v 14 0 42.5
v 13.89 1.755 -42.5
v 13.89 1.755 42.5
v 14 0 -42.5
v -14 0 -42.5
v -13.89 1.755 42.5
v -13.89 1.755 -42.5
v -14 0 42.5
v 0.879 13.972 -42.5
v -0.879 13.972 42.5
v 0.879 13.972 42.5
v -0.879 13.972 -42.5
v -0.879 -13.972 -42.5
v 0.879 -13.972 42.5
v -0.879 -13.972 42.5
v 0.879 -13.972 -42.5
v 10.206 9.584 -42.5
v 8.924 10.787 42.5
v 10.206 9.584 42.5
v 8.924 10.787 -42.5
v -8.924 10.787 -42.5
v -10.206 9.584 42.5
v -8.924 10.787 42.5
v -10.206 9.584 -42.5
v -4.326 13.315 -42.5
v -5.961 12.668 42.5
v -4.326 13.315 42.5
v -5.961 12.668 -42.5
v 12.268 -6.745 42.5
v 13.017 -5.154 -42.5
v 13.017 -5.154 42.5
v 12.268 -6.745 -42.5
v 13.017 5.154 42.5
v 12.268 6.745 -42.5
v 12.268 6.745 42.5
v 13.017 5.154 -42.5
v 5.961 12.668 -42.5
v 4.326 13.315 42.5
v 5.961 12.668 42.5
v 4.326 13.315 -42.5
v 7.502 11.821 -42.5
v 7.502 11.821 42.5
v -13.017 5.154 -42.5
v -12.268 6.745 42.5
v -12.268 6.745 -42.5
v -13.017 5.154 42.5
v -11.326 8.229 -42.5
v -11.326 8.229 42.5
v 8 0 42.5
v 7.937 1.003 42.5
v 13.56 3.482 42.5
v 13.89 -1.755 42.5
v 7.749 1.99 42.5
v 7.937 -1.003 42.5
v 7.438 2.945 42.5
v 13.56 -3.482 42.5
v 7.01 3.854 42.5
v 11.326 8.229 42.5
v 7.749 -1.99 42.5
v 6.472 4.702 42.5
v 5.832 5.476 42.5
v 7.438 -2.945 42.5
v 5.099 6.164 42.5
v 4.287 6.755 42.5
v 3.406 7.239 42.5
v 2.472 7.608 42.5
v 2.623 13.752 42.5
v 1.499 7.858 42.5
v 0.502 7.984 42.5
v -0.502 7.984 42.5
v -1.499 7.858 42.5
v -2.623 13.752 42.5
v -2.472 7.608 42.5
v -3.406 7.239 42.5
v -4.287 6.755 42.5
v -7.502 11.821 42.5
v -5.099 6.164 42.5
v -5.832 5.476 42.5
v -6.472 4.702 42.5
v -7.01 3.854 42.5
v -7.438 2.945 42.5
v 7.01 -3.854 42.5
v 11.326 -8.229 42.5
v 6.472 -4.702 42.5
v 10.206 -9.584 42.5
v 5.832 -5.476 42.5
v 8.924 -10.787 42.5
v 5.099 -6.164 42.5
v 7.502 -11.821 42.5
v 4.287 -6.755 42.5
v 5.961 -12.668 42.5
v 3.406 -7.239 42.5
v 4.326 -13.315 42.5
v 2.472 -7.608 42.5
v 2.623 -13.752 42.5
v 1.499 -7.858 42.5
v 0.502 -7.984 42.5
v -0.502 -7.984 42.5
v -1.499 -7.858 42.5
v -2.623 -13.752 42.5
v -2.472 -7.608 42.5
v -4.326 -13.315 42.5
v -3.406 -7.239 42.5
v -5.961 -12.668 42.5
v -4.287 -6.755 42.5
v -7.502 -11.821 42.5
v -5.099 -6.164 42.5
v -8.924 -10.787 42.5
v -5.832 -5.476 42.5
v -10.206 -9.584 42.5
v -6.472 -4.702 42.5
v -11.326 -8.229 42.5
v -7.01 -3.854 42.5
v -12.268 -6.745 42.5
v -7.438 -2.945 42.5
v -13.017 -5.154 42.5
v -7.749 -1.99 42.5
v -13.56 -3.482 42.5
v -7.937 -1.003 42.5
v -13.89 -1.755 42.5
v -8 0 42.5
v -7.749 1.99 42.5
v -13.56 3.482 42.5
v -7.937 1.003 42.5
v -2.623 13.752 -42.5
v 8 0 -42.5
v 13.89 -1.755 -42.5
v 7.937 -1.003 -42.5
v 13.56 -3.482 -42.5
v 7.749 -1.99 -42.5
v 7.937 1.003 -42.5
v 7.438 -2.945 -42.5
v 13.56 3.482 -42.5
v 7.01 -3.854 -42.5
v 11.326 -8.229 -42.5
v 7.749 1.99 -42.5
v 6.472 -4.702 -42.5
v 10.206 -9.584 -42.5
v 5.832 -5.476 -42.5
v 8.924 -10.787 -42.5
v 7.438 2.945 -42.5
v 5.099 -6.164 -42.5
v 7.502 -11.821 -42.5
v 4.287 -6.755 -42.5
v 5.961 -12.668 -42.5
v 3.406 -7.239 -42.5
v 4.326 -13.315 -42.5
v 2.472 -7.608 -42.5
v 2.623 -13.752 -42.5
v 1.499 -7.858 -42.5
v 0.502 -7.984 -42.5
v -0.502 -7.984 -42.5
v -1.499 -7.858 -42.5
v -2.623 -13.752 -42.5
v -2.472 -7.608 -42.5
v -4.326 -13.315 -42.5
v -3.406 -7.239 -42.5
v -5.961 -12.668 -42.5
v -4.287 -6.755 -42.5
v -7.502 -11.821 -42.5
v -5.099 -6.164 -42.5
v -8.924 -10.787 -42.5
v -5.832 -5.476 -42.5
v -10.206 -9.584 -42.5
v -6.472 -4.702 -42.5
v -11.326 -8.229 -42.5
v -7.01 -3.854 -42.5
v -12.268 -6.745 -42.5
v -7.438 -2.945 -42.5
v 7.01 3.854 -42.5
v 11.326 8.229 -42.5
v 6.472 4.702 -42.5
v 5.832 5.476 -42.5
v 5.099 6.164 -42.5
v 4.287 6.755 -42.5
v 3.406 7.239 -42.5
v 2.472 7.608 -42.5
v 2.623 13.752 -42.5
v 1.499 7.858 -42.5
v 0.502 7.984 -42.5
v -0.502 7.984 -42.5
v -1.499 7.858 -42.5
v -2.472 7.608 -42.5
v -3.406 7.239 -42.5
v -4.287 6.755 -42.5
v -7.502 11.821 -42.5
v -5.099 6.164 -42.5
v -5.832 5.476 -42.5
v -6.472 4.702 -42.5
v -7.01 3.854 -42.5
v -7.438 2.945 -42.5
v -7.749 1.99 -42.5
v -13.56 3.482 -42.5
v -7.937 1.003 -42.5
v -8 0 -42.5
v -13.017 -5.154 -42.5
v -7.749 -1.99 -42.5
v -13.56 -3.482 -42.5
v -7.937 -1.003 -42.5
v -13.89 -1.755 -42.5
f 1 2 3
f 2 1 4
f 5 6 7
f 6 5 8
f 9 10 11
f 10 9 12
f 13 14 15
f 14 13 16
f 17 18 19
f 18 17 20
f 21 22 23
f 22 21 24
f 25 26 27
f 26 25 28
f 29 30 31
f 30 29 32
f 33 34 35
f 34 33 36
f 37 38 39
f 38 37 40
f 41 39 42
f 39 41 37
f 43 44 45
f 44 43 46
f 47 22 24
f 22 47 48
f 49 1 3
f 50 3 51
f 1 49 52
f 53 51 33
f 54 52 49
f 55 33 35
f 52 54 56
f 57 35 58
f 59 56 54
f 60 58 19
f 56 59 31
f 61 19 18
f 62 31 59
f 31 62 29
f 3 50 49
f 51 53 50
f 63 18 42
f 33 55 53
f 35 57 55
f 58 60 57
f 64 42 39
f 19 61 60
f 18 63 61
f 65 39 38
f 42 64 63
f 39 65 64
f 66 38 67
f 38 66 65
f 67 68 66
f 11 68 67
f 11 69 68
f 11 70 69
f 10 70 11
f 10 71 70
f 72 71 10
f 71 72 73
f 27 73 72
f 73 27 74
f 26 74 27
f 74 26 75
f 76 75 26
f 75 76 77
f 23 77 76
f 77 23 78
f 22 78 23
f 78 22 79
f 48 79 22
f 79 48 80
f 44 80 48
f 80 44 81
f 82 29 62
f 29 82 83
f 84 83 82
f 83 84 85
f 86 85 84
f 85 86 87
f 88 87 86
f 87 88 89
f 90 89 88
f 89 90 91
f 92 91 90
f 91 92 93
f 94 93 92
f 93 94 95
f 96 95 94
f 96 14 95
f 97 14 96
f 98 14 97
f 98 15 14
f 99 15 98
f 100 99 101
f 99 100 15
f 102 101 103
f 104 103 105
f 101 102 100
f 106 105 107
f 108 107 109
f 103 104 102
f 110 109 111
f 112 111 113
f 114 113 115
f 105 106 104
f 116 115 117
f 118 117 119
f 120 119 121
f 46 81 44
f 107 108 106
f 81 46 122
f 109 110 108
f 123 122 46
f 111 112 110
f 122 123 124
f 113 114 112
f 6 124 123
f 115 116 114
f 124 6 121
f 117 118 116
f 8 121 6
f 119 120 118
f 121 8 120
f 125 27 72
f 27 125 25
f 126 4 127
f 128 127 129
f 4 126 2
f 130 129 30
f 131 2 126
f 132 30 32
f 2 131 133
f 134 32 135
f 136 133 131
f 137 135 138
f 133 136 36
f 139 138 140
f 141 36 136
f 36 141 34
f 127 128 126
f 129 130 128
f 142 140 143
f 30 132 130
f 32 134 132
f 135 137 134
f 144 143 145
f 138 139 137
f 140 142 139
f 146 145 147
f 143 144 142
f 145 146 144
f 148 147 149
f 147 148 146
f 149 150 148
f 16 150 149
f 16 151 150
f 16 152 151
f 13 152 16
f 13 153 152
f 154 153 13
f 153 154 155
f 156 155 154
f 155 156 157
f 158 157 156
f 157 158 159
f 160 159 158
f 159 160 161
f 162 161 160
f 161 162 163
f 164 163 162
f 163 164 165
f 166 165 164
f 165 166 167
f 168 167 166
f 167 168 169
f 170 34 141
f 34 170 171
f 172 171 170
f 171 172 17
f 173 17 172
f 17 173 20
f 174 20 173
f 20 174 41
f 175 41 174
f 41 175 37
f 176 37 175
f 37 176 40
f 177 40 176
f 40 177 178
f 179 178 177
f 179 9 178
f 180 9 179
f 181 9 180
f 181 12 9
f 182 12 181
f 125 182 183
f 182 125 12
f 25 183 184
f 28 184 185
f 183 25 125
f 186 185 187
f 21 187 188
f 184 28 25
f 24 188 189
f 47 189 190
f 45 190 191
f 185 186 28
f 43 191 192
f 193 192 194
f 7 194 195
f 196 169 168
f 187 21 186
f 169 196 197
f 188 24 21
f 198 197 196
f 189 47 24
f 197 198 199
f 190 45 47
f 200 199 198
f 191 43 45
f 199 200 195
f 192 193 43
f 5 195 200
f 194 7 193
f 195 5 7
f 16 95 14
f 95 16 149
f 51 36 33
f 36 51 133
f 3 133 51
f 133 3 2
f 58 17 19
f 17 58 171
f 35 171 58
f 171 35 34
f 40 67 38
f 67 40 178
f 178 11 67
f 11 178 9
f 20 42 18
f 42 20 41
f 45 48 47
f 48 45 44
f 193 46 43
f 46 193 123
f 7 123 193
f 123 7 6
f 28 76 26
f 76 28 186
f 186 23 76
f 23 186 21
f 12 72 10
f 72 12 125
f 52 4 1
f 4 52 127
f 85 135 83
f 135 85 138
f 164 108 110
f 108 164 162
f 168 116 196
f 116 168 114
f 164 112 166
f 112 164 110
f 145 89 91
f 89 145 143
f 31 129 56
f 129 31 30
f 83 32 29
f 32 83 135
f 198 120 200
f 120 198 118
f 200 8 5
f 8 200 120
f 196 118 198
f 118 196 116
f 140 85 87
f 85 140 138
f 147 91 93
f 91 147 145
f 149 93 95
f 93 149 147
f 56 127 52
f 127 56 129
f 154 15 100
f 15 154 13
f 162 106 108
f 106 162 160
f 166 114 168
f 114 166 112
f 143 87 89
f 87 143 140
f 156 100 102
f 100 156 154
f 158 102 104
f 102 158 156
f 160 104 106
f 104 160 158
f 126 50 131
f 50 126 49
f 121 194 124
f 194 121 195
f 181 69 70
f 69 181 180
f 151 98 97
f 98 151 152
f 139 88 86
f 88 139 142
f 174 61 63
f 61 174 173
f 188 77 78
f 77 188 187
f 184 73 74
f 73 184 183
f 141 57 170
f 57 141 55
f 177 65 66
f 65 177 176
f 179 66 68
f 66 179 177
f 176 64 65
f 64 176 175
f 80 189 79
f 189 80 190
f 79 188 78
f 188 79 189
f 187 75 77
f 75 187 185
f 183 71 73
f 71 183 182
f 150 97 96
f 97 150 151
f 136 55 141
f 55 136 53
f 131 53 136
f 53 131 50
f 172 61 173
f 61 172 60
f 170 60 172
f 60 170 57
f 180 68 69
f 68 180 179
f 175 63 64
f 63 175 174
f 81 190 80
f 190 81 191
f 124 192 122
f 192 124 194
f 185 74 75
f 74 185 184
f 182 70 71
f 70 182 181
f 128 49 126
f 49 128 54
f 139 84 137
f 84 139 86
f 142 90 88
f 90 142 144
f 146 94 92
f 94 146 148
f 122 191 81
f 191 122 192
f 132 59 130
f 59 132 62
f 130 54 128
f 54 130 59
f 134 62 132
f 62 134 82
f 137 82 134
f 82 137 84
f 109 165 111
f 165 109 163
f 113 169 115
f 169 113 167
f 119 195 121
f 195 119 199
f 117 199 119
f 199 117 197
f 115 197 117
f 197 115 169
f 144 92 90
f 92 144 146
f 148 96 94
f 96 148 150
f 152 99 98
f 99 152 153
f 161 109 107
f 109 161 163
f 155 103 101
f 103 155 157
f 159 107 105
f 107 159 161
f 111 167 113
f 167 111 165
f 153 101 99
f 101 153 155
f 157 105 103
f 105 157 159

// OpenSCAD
$fn = 50;


difference() {
	union() {
		translate(v = [0, 0, -42.5000000000]) {
			cylinder(h = 85, r = 14.0000000000);
		}
	}
	union() {
		translate(v = [0, 0, -100.0000000000]) {
			cylinder(h = 200, r = 8);
		}
	}
}
